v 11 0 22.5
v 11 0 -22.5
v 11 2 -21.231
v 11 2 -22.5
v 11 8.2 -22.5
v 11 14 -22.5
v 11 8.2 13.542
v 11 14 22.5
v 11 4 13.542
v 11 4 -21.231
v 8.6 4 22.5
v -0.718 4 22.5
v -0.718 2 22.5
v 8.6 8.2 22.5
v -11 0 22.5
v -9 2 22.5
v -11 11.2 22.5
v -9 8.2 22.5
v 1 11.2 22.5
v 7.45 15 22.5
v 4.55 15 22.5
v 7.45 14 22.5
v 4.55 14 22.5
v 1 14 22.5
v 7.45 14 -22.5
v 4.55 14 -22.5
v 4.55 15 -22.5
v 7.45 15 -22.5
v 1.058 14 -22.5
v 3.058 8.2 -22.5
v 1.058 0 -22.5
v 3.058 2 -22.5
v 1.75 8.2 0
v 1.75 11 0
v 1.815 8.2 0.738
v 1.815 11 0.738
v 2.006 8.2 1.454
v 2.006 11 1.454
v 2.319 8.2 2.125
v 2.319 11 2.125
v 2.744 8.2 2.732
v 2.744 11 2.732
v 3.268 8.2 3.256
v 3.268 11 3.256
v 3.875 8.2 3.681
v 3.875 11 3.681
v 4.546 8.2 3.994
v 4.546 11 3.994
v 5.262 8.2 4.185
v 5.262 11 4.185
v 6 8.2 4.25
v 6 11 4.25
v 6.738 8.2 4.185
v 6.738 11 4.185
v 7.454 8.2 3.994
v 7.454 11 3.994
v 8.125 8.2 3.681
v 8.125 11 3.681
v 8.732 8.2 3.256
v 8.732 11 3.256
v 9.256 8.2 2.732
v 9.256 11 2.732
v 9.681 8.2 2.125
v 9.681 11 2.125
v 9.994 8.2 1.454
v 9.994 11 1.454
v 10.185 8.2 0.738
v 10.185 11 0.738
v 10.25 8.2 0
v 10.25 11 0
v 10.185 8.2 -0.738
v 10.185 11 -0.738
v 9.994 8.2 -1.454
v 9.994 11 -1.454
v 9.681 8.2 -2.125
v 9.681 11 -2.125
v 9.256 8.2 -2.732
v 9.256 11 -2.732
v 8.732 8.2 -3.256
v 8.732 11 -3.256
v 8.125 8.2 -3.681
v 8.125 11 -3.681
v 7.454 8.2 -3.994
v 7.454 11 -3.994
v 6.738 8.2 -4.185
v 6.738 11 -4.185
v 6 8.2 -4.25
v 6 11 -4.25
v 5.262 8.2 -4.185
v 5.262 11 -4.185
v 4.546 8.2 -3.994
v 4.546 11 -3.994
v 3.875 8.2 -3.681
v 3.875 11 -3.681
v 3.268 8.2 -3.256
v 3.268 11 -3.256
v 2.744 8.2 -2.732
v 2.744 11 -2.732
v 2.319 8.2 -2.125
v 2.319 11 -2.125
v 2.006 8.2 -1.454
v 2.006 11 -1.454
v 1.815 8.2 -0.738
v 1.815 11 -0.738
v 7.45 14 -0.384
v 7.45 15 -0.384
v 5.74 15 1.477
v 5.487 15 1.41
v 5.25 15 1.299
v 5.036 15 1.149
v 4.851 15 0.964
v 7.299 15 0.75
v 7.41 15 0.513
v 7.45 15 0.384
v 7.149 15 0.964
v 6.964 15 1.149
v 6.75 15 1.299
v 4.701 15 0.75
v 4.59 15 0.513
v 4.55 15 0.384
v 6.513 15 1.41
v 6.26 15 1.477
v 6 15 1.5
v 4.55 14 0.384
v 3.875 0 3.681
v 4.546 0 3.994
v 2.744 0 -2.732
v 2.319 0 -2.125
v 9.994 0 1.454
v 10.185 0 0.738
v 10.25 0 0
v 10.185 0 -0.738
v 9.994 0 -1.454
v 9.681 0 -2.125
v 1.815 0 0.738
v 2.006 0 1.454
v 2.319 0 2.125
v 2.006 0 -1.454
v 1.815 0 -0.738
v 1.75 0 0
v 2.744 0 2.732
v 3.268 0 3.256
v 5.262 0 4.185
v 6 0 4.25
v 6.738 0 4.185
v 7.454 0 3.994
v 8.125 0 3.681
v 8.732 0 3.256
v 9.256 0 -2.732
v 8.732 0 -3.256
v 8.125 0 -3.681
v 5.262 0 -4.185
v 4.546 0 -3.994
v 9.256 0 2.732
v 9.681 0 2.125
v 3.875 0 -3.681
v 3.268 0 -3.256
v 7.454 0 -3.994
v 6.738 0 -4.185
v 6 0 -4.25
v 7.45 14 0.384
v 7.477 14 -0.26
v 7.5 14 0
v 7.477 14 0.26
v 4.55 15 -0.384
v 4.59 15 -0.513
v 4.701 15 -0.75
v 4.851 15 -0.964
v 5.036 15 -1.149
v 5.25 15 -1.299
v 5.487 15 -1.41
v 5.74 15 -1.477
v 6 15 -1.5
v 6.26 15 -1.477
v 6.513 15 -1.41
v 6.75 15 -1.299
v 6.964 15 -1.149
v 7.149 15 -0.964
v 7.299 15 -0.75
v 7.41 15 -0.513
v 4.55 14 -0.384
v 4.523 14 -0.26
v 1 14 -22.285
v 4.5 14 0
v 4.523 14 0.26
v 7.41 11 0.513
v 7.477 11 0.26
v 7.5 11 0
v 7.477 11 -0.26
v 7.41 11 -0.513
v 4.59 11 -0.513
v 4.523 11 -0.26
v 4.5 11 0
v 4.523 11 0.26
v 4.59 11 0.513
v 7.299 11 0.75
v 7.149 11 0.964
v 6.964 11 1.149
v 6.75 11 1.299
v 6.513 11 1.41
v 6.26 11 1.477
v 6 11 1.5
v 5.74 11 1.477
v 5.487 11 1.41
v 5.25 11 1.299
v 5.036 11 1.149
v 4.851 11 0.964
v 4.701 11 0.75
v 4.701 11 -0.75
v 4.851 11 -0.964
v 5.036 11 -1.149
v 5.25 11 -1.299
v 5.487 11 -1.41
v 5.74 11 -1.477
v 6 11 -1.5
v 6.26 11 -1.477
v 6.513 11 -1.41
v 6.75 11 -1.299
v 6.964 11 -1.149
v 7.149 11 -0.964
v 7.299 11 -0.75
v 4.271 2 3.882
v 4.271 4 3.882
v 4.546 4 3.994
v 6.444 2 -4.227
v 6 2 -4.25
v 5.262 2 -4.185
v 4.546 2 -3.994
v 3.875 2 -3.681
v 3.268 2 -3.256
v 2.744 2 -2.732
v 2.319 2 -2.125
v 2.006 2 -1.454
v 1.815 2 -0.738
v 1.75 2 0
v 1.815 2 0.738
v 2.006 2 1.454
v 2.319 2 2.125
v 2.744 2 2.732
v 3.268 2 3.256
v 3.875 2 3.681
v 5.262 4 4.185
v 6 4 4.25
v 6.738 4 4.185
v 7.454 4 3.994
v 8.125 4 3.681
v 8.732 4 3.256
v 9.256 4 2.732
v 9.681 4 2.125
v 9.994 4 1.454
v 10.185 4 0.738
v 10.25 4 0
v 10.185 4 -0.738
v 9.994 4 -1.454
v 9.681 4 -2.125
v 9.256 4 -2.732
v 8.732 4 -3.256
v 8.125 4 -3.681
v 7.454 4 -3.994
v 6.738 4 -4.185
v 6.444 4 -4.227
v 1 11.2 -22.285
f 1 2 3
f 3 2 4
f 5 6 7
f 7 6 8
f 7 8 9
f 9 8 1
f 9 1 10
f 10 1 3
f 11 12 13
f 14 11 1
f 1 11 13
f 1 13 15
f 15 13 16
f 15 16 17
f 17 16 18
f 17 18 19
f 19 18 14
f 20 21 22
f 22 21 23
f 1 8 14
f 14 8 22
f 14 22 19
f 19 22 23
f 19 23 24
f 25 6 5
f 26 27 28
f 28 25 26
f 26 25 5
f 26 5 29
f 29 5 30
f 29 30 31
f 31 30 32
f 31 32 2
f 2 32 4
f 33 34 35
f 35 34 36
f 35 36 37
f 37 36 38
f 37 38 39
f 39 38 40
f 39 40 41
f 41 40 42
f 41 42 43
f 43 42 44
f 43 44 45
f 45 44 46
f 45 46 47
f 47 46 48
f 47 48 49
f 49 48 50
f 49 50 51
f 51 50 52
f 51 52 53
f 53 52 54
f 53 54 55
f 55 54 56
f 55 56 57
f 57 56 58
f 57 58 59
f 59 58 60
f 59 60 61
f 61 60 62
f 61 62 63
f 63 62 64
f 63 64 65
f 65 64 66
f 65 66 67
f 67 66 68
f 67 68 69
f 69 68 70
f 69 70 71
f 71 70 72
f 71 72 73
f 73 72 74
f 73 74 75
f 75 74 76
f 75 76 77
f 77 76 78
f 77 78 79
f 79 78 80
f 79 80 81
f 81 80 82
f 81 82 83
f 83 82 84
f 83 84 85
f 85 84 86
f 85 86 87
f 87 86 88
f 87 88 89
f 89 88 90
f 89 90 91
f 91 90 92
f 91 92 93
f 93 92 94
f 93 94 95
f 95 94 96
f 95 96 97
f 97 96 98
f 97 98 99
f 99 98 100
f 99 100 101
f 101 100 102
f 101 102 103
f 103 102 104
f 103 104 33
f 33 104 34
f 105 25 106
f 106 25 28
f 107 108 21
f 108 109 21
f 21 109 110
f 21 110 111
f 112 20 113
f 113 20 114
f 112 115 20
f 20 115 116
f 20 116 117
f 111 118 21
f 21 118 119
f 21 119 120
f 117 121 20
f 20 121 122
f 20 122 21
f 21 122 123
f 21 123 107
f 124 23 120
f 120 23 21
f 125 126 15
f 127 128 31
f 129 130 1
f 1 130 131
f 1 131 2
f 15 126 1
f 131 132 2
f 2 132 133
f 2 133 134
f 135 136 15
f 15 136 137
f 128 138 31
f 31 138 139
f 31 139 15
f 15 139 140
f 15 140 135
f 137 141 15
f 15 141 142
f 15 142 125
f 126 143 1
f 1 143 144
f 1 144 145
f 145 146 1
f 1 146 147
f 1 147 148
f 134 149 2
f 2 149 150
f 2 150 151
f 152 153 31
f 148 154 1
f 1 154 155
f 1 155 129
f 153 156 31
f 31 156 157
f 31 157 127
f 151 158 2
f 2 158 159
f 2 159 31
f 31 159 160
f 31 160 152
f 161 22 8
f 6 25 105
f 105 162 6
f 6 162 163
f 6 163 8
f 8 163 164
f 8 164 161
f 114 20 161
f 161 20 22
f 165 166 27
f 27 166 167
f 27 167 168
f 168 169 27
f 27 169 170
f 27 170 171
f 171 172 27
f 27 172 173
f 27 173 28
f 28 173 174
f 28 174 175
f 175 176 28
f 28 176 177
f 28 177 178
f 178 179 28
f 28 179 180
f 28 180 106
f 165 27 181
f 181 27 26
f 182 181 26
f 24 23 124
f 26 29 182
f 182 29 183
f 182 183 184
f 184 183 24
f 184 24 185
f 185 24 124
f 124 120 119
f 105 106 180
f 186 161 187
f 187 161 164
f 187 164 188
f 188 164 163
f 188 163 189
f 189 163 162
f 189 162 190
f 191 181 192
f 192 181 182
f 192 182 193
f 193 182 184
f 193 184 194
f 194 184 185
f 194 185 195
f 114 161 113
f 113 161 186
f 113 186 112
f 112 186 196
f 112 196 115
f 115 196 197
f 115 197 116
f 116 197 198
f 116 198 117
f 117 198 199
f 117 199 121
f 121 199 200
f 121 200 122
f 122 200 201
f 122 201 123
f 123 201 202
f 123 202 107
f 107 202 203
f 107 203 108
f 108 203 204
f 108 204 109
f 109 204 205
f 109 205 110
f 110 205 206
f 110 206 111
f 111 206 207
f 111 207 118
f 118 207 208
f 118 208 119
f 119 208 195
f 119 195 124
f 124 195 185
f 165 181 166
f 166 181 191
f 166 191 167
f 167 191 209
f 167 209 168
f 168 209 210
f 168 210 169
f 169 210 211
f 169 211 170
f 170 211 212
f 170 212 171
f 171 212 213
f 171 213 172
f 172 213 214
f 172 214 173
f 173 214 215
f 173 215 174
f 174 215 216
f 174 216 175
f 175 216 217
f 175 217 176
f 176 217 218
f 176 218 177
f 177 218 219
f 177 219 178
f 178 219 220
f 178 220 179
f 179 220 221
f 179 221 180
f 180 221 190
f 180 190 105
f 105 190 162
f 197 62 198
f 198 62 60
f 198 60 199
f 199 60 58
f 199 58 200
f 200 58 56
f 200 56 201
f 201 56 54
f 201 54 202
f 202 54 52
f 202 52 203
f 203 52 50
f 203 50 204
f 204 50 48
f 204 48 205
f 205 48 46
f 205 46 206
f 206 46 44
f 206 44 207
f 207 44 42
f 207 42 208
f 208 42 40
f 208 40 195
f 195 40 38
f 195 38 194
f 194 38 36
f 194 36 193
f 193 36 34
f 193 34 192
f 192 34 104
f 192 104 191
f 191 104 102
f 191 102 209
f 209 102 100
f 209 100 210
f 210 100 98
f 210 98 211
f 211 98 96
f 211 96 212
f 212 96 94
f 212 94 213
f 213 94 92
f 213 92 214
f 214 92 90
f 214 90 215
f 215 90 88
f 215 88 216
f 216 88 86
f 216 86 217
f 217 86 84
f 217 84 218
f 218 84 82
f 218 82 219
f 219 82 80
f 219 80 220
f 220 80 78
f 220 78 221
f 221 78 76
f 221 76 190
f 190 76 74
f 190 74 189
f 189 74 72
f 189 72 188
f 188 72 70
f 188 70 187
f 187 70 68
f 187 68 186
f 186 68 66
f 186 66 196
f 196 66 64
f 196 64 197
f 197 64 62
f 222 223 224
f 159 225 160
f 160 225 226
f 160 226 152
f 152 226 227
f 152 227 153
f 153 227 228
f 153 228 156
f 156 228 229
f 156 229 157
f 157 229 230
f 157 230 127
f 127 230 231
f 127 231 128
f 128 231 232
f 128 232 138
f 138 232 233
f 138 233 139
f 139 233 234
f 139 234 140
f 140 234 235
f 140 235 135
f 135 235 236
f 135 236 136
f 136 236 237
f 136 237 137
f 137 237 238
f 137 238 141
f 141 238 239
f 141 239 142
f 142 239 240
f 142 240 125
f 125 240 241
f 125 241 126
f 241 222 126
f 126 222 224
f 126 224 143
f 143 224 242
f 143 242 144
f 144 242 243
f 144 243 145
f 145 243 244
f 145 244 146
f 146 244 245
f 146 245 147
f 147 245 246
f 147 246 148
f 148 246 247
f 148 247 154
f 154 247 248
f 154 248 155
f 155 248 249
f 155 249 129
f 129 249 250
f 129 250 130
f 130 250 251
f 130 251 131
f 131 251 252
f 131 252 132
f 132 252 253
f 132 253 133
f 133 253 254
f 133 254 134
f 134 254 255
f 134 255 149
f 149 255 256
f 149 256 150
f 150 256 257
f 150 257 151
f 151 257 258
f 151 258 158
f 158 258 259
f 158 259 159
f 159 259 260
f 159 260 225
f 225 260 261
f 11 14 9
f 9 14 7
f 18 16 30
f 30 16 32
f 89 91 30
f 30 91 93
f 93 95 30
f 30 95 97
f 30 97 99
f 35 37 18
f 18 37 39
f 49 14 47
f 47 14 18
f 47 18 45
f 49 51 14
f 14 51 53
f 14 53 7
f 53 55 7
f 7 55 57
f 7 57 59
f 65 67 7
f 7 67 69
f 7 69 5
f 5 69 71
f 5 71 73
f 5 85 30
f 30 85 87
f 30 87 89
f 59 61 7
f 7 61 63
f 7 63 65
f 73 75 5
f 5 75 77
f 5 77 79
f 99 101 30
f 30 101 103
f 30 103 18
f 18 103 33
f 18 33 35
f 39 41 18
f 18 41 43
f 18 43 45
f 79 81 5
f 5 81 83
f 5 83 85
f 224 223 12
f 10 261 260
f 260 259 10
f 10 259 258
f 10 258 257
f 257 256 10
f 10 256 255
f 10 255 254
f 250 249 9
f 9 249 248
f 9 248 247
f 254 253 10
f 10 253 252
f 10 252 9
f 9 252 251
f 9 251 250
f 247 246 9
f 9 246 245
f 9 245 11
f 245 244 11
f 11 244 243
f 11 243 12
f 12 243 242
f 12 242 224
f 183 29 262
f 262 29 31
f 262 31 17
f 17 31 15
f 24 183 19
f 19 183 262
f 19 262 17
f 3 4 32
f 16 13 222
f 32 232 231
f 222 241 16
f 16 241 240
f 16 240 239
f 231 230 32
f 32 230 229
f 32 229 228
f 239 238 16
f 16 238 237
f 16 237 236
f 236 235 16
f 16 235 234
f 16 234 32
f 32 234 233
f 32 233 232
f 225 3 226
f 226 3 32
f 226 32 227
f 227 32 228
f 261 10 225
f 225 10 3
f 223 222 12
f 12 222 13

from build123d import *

# Parameters (mm, degrees)
MAKERBEAMFIX_DEPTH          = 22.5
SKETCH4_R                   = 1.5
FIXINGHOLE_DEPTH            = 16
SKETCH5_R                   = 4.25
DRIVERHOLE_DEPTH            = 12
HOLEFORCALIBERS_DEPTH       = 4.2
CUT_EXTRUDE2_DEPTH          = 16
SKETCH8_W                   = 12
SKETCH8_H                   = 2.8
CUT_EXTRUDE3_DEPTH          = 46
SKETCH9_W                   = 2
SKETCH9_H                   = 8
HOLEFORSCREWOFCALIBER_DEPTH = 49.643043085


with BuildPart() as part:
    # Sketch1 → MakerBeamFix (new body, symmetric)
    with BuildSketch(Plane.XY):
        Polygon((-11, 0), (11, 0), (11, 14), (7.45, 14), (7.45, 15), (4.55, 15), (4.55, 14), (-11, 14), align=None)
    extrude(amount=MAKERBEAMFIX_DEPTH, both=True)

    # Sketch4 → FixingHole (cut, through all)
    with BuildSketch(Plane.XZ):
        with Locations((6, 0)):
            Circle(SKETCH4_R)
    extrude(amount=-FIXINGHOLE_DEPTH, mode=Mode.SUBTRACT)

    # Sketch5 → DriverHole (cut, through all)
    with BuildSketch(Plane(origin=(0, 11, 0), x_dir=(1, 0, 0), z_dir=(0, 1, 0))):
        with Locations((6, 0)):
            Circle(SKETCH5_R)
    extrude(amount=-DRIVERHOLE_DEPTH, mode=Mode.SUBTRACT)

    # Sketch6 → HoleForCalibers (cut)
    with BuildSketch(Plane(origin=(0, 4, 0), x_dir=(1, 0, 0), z_dir=(0, 1, 0))):
        Polygon((7.420739047, -26.899923767), (-9, -22.5), (3.589745962, 24.485571585), (20.010485009, 20.085647818), align=None)
    extrude(amount=HOLEFORCALIBERS_DEPTH, mode=Mode.SUBTRACT)

    # Sketch7 → Cut-Extrude2 (cut, through all)
    with BuildSketch(Plane(origin=(0, 0, 0), x_dir=(-1, 0, 0), z_dir=(0, -1, 0))):
        Polygon((11, 22.5), (-1.057713659, 22.5), (11, -22.5), align=None)
    extrude(amount=-CUT_EXTRUDE2_DEPTH, mode=Mode.SUBTRACT)

    # Sketch8 → Cut-Extrude3 (cut, through all)
    with BuildSketch(Plane.XY.offset(22.5)):
        with Locations((-5, 12.6)):
            Rectangle(SKETCH8_W, SKETCH8_H)
    extrude(amount=-CUT_EXTRUDE3_DEPTH, mode=Mode.SUBTRACT)

    # Sketch9 → HoleForScrewOfCaliber (cut, through all)
    with BuildSketch(Plane(origin=(-6.227885683, 0, 23.242785793), x_dir=(0, -1, 0), z_dir=(-0.258819045, 0, 0.965925826))):
        with Locations((-3, 1.130096078)):
            Rectangle(SKETCH9_W, SKETCH9_H)
    extrude(amount=-HOLEFORSCREWOFCALIBER_DEPTH, mode=Mode.SUBTRACT)


solid = part.part
